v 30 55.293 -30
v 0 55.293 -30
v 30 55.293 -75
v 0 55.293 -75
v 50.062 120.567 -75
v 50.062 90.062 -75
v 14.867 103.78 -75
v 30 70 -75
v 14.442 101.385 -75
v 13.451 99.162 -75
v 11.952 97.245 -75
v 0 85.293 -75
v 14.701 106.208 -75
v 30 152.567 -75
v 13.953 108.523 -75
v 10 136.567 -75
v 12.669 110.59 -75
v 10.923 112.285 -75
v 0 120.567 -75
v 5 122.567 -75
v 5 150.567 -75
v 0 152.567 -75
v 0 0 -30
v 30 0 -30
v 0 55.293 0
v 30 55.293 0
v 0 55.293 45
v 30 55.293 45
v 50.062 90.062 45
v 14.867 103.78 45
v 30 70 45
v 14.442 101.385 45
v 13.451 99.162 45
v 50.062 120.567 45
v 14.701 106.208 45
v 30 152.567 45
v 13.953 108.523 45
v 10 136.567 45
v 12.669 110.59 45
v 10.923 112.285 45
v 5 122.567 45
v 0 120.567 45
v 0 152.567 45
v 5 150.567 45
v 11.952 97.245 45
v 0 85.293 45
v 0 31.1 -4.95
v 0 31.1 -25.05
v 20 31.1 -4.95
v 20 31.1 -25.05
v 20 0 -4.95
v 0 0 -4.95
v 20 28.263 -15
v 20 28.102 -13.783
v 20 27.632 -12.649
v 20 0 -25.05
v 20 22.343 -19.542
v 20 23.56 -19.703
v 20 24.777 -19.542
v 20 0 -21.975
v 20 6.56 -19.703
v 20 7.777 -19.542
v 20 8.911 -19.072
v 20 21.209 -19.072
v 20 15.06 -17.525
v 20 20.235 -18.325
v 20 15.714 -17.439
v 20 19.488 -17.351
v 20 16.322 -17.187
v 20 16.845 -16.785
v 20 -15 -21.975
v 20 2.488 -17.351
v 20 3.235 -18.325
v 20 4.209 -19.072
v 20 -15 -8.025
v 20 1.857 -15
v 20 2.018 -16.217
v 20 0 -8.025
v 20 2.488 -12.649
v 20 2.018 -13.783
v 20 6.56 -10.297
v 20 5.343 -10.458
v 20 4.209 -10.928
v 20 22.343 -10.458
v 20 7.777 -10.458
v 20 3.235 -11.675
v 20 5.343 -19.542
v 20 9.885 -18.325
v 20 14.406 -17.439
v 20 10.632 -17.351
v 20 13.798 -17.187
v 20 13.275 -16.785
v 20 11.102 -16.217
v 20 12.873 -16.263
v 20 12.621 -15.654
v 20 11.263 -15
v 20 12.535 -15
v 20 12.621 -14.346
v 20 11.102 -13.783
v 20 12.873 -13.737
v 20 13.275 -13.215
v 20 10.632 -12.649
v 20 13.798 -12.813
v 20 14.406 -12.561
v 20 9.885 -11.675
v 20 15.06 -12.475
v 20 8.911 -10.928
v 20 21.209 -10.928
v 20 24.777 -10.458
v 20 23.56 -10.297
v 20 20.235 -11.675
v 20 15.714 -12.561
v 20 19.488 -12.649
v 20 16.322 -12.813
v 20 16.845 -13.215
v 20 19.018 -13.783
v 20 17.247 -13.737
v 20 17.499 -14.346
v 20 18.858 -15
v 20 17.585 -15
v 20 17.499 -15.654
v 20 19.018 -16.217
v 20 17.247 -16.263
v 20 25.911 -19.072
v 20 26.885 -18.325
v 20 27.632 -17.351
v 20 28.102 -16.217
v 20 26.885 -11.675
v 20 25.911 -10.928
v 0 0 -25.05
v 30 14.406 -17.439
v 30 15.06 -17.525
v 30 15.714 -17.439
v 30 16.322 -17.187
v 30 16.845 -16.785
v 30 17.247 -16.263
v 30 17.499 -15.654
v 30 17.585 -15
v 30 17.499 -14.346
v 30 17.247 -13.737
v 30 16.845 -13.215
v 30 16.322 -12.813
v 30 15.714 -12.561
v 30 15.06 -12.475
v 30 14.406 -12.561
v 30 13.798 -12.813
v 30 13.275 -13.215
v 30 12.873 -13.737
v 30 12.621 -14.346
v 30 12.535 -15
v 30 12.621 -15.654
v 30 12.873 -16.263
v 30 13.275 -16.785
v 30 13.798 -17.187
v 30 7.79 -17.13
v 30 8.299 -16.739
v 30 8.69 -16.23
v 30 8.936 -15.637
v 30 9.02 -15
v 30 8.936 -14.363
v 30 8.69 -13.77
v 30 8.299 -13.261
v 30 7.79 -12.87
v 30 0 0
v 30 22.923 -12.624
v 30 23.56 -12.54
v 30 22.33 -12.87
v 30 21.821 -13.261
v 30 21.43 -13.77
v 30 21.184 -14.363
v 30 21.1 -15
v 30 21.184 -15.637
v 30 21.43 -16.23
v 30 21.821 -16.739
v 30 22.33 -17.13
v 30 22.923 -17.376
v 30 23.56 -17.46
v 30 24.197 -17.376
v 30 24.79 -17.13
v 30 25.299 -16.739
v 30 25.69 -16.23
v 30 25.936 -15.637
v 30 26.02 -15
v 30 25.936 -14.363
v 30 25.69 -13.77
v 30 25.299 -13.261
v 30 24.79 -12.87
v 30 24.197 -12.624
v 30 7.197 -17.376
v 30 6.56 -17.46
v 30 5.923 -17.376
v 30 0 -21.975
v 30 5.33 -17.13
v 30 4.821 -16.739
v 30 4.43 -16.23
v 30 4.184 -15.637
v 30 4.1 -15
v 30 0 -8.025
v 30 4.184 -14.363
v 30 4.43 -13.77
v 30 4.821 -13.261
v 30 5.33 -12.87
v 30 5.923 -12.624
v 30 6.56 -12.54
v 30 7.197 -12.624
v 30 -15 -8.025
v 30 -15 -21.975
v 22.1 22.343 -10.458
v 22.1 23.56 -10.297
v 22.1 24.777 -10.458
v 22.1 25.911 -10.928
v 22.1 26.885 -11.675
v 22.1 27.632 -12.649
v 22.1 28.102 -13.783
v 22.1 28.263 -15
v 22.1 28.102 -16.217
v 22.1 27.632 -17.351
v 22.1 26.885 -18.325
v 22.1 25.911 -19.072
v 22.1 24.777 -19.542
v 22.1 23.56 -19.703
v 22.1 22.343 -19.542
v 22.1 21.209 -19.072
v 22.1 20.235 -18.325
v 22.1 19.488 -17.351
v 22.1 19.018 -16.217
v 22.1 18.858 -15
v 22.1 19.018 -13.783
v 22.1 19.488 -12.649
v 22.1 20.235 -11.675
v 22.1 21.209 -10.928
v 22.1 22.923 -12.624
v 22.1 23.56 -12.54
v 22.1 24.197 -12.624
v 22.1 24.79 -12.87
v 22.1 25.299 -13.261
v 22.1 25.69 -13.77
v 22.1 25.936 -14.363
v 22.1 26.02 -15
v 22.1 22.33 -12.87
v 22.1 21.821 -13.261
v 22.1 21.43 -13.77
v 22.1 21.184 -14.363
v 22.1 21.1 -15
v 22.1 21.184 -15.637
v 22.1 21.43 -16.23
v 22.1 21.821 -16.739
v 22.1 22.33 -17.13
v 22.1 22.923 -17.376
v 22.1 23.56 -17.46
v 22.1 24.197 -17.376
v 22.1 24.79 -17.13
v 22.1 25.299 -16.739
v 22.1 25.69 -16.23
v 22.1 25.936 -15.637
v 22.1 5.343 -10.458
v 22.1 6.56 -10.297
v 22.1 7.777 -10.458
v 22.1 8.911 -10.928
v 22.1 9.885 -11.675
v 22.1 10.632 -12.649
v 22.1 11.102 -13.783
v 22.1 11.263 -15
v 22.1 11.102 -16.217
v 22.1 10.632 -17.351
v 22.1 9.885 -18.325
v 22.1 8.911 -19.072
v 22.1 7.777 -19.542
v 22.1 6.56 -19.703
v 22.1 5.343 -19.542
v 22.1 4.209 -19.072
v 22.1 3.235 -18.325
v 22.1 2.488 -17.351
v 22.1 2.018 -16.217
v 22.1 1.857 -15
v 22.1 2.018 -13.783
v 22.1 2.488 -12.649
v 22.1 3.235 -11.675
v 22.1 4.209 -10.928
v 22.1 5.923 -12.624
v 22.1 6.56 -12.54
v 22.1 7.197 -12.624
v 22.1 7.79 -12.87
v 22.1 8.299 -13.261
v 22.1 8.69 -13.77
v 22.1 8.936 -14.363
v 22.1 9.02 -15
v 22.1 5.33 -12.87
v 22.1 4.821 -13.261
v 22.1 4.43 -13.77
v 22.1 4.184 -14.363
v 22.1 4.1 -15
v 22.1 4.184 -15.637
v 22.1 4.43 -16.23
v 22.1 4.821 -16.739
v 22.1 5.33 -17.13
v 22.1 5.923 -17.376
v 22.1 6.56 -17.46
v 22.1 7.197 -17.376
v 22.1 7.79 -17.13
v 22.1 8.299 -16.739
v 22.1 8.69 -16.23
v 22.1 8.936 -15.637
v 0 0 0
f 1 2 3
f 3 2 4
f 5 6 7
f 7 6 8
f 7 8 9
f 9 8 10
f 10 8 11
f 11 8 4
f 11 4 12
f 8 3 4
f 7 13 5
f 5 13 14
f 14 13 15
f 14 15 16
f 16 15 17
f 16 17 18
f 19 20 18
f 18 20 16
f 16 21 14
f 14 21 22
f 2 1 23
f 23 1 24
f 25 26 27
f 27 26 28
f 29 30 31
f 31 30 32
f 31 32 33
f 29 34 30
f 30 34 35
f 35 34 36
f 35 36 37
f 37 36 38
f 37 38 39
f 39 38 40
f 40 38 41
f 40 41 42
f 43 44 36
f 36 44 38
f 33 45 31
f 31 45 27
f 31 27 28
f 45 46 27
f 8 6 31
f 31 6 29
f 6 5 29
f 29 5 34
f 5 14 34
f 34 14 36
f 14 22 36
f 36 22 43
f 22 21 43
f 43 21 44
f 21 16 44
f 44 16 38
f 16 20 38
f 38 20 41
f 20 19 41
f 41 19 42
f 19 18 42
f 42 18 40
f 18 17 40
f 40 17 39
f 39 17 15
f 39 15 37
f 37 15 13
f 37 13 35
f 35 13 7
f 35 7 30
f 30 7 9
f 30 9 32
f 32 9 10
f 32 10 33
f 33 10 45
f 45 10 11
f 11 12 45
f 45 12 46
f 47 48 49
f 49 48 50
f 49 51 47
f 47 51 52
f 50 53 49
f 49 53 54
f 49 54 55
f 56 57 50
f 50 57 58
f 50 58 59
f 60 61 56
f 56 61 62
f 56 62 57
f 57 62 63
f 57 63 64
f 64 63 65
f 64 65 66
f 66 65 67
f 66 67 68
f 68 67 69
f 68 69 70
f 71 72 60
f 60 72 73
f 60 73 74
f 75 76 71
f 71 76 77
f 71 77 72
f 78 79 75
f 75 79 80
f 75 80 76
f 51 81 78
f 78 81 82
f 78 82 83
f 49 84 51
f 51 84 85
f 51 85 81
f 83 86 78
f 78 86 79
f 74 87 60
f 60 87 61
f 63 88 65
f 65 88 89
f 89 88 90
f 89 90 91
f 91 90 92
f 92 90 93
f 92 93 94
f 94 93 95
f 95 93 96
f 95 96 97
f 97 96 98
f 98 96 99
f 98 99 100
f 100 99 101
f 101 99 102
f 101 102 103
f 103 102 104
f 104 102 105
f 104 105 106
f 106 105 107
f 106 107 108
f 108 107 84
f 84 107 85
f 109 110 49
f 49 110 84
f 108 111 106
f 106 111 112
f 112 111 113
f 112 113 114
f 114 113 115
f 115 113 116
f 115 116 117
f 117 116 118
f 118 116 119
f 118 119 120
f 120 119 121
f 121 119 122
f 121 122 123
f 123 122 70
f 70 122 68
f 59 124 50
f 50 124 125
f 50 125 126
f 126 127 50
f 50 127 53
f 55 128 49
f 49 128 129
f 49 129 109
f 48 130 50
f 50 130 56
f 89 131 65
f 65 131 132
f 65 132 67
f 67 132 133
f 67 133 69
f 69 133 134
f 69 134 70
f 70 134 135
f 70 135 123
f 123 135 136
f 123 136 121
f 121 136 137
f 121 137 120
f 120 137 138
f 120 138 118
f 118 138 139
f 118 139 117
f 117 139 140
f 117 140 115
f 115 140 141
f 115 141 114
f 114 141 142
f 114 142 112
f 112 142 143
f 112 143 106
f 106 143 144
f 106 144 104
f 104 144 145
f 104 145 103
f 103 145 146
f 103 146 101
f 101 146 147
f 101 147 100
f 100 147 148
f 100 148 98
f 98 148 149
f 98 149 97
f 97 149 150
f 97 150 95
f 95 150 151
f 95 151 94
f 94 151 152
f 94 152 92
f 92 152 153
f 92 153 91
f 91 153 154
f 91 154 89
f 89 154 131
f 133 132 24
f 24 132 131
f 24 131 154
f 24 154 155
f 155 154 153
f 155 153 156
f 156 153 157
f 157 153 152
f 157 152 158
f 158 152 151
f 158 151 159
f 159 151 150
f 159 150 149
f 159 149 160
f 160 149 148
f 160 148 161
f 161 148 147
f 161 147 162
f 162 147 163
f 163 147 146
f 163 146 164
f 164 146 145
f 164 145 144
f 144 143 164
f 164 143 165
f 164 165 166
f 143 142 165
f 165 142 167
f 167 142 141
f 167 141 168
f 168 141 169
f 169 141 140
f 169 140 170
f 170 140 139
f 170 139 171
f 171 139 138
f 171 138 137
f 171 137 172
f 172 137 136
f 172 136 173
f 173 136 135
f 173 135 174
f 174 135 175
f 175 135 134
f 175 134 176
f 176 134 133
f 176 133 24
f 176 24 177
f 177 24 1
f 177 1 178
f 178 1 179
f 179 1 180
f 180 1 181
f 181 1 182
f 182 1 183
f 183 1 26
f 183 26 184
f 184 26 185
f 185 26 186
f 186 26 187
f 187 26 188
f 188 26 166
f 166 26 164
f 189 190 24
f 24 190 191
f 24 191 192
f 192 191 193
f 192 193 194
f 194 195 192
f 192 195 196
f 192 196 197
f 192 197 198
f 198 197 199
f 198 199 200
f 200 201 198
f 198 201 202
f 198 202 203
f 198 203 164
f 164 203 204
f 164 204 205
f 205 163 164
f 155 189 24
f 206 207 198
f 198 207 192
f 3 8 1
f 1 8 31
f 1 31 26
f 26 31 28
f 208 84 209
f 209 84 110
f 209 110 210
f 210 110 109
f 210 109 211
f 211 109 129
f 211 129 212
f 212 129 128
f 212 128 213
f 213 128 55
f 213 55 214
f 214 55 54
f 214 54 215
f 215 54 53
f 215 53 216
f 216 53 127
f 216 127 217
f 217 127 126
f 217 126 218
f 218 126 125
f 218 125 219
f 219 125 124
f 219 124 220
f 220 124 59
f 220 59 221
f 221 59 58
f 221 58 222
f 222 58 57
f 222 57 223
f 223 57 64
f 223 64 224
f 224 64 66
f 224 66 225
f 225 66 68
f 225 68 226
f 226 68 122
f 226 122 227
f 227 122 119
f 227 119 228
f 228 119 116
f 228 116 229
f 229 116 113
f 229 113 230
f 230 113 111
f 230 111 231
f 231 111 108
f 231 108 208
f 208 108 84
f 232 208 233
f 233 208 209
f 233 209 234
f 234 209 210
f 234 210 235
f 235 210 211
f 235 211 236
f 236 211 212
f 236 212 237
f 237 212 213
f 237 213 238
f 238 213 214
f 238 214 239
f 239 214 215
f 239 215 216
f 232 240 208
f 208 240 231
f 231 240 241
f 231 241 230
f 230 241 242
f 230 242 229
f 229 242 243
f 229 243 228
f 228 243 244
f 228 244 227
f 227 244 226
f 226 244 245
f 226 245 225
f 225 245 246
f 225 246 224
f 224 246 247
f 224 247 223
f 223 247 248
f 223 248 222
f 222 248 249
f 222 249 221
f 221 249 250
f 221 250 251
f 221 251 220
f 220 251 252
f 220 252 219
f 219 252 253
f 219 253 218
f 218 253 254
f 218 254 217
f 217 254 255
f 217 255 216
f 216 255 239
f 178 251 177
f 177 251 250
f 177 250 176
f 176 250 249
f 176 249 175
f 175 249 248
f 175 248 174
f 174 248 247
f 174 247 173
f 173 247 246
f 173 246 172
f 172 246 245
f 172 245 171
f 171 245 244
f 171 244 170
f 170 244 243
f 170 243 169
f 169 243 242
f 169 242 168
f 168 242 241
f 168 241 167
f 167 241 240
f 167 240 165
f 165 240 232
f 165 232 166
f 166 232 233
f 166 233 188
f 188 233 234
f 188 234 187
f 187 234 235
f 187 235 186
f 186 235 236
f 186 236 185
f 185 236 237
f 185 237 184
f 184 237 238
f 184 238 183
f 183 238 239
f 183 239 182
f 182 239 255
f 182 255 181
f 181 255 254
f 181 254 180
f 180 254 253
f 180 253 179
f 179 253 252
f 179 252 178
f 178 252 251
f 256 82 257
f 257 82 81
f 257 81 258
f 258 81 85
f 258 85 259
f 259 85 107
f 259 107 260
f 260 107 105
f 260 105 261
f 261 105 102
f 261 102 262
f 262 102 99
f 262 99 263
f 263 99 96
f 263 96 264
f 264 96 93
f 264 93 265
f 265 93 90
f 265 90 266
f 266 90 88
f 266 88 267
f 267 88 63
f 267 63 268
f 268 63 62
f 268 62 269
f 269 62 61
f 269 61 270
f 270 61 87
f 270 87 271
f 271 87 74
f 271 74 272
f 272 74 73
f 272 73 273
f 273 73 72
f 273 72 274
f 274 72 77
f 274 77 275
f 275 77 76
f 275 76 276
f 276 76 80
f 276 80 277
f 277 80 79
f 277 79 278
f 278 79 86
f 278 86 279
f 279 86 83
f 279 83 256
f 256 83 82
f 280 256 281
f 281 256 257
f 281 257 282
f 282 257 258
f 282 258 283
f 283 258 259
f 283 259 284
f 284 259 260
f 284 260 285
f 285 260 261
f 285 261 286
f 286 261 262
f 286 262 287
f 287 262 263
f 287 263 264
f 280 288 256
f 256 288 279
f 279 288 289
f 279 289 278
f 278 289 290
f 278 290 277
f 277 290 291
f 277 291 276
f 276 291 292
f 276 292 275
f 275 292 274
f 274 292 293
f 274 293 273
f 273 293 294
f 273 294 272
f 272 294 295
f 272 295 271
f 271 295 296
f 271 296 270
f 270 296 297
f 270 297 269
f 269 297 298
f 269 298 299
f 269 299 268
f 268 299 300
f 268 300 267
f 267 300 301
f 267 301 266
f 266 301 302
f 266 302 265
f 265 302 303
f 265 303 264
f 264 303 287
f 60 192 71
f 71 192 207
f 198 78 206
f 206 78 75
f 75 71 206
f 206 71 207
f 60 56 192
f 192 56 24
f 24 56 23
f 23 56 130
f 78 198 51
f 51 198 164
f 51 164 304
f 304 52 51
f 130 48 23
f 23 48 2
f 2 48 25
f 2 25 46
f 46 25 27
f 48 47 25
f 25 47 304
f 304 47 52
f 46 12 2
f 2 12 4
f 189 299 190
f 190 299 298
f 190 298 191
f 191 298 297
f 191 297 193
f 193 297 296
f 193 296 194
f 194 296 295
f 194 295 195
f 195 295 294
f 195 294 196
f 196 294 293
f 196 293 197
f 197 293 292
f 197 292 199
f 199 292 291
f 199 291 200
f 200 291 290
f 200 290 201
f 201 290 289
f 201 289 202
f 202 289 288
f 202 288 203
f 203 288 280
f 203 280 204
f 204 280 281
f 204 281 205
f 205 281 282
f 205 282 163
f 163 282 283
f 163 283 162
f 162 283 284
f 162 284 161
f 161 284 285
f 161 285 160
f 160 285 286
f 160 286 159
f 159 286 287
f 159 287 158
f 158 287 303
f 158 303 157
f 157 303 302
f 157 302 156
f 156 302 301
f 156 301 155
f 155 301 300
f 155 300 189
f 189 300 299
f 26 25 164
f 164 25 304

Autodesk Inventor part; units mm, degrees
ref_plane "YZ Plane" through (0, 0, 0) normal (1, 0, 0) x (0, 1, 0)
ref_plane "XZ Plane" through (0, 0, 0) normal (0, 1, 0) x (-1, 0, 0)
sketch "Sketch1" plane through (0, 0, 0) normal (0, 0, 1) x (1, 0, 0)
  line L0 (0, 0) -> (25, 0)
  line L1 (25, 0) -> (25, 40)
  line L2 (25, 40) -> (0, 40)
  line L3 (0, 40) -> (0, 0)
  dimension "d1" = 25
  dimension "d2" = 40
  dimension "d3" = 25
extrude "Extrusion1" add sketch "Sketch1" against normal blind 30
sketch "Sketch2" plane through (25, 0, 0) normal (1, 0, 0) x (0, 0, -1)
  line L0 (0, 0) -> (30, 0) projected
  circle A0 centre (15, 6.56) radius 2.46
extrude "Extrusion2" cut sketch "Sketch2" against normal blind 30
sketch "Sketch3" plane through (0, 0, 0) normal (-1, 0, 0) x (0, 0, 1)
  line L0 (0, 0) -> (-30, 0) projected
  line L1 (-25.05, 0) -> (-4.95, 0)
  line L2 (-4.95, 0) -> (-4.95, 33.12)
  line L3 (-4.95, 33.12) -> (-25.05, 33.12)
  line L4 (-25.05, 33.12) -> (-25.05, 0)
  dimension "d11" = 20.1
extrude "Extrusion3" cut sketch "Sketch3" against normal blind 20
sketch "Sketch4" plane through (0, 0, 0) normal (0, -1, 0) x (1, 0, 0)
  line L0 (20, -4.95) -> (20, -25.05) projected
  line L1 (20, -15) -> (25, -15)
  line L2 (25, 0) -> (25, -30) projected
  line L3 (20, -8.025) -> (25, -8.025)
  line L4 (25, -8.025) -> (25, -21.975)
  line L5 (25, -21.975) -> (20, -21.975)
  line L6 (20, -21.975) -> (20, -8.025)
  line L7 (20, -8.025) -> (25, -21.975) construction
  line L8 (25, -8.025) -> (20, -21.975) construction
  line L9 (25, -12.54) -> (25, -17.46) projected
  point P0 (0, 0)
  point P1 (22.5, -15)
  dimension "d14" = 13.95
extrude "Extrusion4" add sketch "Sketch4" along normal blind 15
sketch "Sketch5" plane through (20, 0, 0) normal (-1, 0, 0) x (0, 0, 1)
  circle A0 centre (-15, 6.56) radius 2.46 projected
  circle A1 centre (-15, 6.56) radius 4.7025
  circle A2 centre (-15, 6.56) radius 2.46 projected
  circle A3 centre (-15, 6.56) radius 2.46
  point P0 (0, 0)
  dimension "d17" = 9.405
extrude "Extrusion5" cut sketch "Sketch5" against normal blind 2.1
sketch "Sketch6" plane through (25, 0, 0) normal (1, 0, 0) x (0, 0, -1)
  circle A0 centre (15, 6.56) radius 4.7025 projected
  line L0 (15, 6.56) -> (15, 23.56)
  circle A1 centre (15, 23.56) radius 2.46
  point P0 (0, 0)
  dimension "d20" = 17
  dimension "d21" = 4.92
extrude "Extrusion6" cut sketch "Sketch6" against normal blind 10 contours A1
sketch "Sketch7" plane through (20, 0, 0) normal (-1, 0, 0) x (0, 0, 1)
  circle A0 centre (-15, 23.56) radius 2.46 projected
  circle A1 centre (-15, 23.56) radius 4.7025
  point P0 (0, 0)
  dimension "d24" = 9.405
extrude "Extrusion7" cut sketch "Sketch7" against normal blind 2.1
sketch "Sketch9" plane through (25, 0, 0) normal (1, 0, 0) x (0, 0, -1)
  circle A0 centre (15, 6.56) radius 2.46 projected
  circle A1 centre (15, 6.56) radius 2.46
  circle A2 centre (15, 23.56) radius 2.46 projected
  circle A3 centre (15, 23.56) radius 2.46
  line L0 (30, 40) -> (30, 0) projected
  line L1 (30, 0) -> (30, 40)
  line L2 (30, 40) -> (0, 40)
  line L3 (0, 40) -> (0, 0)
  line L4 (0, 0) -> (8.025, 0) projected
  line L5 (21.975, 0) -> (21.975, -15)
  line L6 (21.975, -15) -> (8.025, -15)
  line L7 (8.025, -15) -> (8.025, 0)
  line L8 (0, 0) -> (8.025, 0)
  line L9 (21.975, 0) -> (30, 0)
extrude "Extrusion8" add sketch "Sketch9" along normal blind 5
sketch "Sketch10" plane through (0, 40, 0) normal (0, 1, 0) x (1, 0, 0)
  line L0 (0, 30) -> (30, 30) projected
  line L1 (30, 0) -> (0, 0) projected
  line L2 (0, 30) -> (30, 30)
  line L3 (30, 30) -> (30, 0)
  line L4 (30, 0) -> (0, 0)
  line L5 (0, 0) -> (0, 30)
extrude "Extrusion9" add sketch "Sketch10" along normal blind 30
sketch "Sketch12" plane through (30, 0, 0) normal (1, 0, 0) x (0, 0, -1)
  circle A0 centre (15, 6.56) radius 2.46 projected
  line L0 (15, 6.56) -> (15, 15.06)
  circle A1 centre (15, 15.06) radius 2.525
  point P0 (0, 0)
  dimension "d31" = 8.5
  dimension "d33" = 5.05
extrude "Extrusion10" cut sketch "Sketch12" against normal blind 30 contours A1
sketch "Sketch15" plane through (0, 0, -25.05) normal (-1, 0, 0) x (0, 0, 1)
  line L0 (0, 33.12) -> (20.1, 33.12) projected
  line L1 (20.1, 33.12) -> (20.1, 0) projected
  line L2 (0, 33.12) -> (20.1, 33.12)
  line L3 (20.1, 33.12) -> (20.1, 31.1)
  line L4 (20.1, 31.1) -> (0, 31.1)
  line L5 (0, 31.1) -> (0, 33.12)
  point P0 (25.05, 0)
  dimension "d57" = 2.02
extrude "Extrusion13" add sketch "Sketch15" against normal blind 20
sketch "Sketch17" plane through (0, 0, 0) normal (0, 0, 1) x (1, 0, 0)
  line L0 (0, 70) -> (30, 70) projected
  line L1 (30, 70) -> (50.0622, 90.0622)
  line L2 (30, 70) -> (80, 70) construction
  line L3 (11.9522, 97.2454) -> (0, 85.2932)
  line L4 (0, 70) -> (0, 85.2932)
  line L5 (0, 70) -> (0, 0) projected
  line L6 (0, 70) -> (30, 70)
  line L7 (10.923, 112.2849) -> (0, 120.567)
  line L8 (50.0622, 105.3553) -> (50.0622, 120.567)
  line L9 (50.0622, 105.3553) -> (50.0622, 90.0622)
  arc A0 (11.9522, 97.2454) -> (10.923, 112.2849) centre (4.8811, 104.3165) ccw
  line L10 (0, 152.567) -> (30, 152.567)
  line L11 (30, 152.567) -> (50.0622, 120.567)
  line L12 (5, 150.567) -> (0, 152.567)
  line L13 (5, 122.567) -> (0, 120.567)
  line L14 (5, 122.567) -> (10, 136.567)
  line L15 (10, 136.567) -> (5, 150.567)
  dimension "d61" = 45
  dimension "d62" = 32.0271
  dimension "d72" = 10
extrude "Extrusion14" add sketch "Sketch17" against normal blind 30
sketch "Sketch22" plane through (0, 0, 0) normal (0, 0, 1) x (1, 0, 0)
  line L0 (30, 0) -> (30, 70) projected
  line L1 (50.0622, 90.0622) -> (30, 70) projected
  line L2 (30, 70) -> (50.0622, 90.0622)
  line L3 (50.0622, 120.567) -> (50.0622, 90.0622) projected
  line L4 (50.0622, 90.0622) -> (50.0622, 120.567)
  line L5 (30, 152.567) -> (50.0622, 120.567) projected
  line L6 (50.0622, 120.567) -> (30, 152.567)
  line L7 (0, 152.567) -> (30, 152.567) projected
  line L8 (30, 152.567) -> (0, 152.567)
  line L9 (5, 150.567) -> (0, 152.567) projected
  line L10 (0, 152.567) -> (5, 150.567)
  line L11 (5, 150.567) -> (10, 136.567) projected
  line L12 (5, 150.567) -> (10, 136.567)
  line L13 (10, 136.567) -> (5, 122.567) projected
  line L14 (10, 136.567) -> (5, 122.567)
  line L15 (5, 122.567) -> (0, 120.567) projected
  line L16 (5, 122.567) -> (0, 120.567)
  line L17 (0, 120.567) -> (10.923, 112.2849) projected
  line L18 (0, 120.567) -> (10.923, 112.2849)
  line L19 (0, 85.2932) -> (11.9522, 97.2454) projected
  line L20 (11.9522, 97.2454) -> (0, 85.2932)
  line L21 (0, 85.2932) -> (0, 55.2932)
  line L22 (0, 0) -> (0, 85.2932) projected
  line L23 (0, 55.2932) -> (30, 55.2932)
  line L24 (30, 55.2932) -> (30, 70)
  arc A0 (11.9522, 97.2454) -> (10.923, 112.2849) centre (4.8811, 104.3165) ccw
  dimension "d92" = 30
extrude "Extrusion15" add sketch "Sketch22" along normal blind 45
ref_plane "Work Plane1" through (0, 0, -15) normal (0, 0, 1) x (1, 0, 0)
mirror "Mirror1" about plane through (0, 0, -15) normal (0, 0, 1) of "Extrusion15"
properties part number "rec_c_28mm_x_120mm"
